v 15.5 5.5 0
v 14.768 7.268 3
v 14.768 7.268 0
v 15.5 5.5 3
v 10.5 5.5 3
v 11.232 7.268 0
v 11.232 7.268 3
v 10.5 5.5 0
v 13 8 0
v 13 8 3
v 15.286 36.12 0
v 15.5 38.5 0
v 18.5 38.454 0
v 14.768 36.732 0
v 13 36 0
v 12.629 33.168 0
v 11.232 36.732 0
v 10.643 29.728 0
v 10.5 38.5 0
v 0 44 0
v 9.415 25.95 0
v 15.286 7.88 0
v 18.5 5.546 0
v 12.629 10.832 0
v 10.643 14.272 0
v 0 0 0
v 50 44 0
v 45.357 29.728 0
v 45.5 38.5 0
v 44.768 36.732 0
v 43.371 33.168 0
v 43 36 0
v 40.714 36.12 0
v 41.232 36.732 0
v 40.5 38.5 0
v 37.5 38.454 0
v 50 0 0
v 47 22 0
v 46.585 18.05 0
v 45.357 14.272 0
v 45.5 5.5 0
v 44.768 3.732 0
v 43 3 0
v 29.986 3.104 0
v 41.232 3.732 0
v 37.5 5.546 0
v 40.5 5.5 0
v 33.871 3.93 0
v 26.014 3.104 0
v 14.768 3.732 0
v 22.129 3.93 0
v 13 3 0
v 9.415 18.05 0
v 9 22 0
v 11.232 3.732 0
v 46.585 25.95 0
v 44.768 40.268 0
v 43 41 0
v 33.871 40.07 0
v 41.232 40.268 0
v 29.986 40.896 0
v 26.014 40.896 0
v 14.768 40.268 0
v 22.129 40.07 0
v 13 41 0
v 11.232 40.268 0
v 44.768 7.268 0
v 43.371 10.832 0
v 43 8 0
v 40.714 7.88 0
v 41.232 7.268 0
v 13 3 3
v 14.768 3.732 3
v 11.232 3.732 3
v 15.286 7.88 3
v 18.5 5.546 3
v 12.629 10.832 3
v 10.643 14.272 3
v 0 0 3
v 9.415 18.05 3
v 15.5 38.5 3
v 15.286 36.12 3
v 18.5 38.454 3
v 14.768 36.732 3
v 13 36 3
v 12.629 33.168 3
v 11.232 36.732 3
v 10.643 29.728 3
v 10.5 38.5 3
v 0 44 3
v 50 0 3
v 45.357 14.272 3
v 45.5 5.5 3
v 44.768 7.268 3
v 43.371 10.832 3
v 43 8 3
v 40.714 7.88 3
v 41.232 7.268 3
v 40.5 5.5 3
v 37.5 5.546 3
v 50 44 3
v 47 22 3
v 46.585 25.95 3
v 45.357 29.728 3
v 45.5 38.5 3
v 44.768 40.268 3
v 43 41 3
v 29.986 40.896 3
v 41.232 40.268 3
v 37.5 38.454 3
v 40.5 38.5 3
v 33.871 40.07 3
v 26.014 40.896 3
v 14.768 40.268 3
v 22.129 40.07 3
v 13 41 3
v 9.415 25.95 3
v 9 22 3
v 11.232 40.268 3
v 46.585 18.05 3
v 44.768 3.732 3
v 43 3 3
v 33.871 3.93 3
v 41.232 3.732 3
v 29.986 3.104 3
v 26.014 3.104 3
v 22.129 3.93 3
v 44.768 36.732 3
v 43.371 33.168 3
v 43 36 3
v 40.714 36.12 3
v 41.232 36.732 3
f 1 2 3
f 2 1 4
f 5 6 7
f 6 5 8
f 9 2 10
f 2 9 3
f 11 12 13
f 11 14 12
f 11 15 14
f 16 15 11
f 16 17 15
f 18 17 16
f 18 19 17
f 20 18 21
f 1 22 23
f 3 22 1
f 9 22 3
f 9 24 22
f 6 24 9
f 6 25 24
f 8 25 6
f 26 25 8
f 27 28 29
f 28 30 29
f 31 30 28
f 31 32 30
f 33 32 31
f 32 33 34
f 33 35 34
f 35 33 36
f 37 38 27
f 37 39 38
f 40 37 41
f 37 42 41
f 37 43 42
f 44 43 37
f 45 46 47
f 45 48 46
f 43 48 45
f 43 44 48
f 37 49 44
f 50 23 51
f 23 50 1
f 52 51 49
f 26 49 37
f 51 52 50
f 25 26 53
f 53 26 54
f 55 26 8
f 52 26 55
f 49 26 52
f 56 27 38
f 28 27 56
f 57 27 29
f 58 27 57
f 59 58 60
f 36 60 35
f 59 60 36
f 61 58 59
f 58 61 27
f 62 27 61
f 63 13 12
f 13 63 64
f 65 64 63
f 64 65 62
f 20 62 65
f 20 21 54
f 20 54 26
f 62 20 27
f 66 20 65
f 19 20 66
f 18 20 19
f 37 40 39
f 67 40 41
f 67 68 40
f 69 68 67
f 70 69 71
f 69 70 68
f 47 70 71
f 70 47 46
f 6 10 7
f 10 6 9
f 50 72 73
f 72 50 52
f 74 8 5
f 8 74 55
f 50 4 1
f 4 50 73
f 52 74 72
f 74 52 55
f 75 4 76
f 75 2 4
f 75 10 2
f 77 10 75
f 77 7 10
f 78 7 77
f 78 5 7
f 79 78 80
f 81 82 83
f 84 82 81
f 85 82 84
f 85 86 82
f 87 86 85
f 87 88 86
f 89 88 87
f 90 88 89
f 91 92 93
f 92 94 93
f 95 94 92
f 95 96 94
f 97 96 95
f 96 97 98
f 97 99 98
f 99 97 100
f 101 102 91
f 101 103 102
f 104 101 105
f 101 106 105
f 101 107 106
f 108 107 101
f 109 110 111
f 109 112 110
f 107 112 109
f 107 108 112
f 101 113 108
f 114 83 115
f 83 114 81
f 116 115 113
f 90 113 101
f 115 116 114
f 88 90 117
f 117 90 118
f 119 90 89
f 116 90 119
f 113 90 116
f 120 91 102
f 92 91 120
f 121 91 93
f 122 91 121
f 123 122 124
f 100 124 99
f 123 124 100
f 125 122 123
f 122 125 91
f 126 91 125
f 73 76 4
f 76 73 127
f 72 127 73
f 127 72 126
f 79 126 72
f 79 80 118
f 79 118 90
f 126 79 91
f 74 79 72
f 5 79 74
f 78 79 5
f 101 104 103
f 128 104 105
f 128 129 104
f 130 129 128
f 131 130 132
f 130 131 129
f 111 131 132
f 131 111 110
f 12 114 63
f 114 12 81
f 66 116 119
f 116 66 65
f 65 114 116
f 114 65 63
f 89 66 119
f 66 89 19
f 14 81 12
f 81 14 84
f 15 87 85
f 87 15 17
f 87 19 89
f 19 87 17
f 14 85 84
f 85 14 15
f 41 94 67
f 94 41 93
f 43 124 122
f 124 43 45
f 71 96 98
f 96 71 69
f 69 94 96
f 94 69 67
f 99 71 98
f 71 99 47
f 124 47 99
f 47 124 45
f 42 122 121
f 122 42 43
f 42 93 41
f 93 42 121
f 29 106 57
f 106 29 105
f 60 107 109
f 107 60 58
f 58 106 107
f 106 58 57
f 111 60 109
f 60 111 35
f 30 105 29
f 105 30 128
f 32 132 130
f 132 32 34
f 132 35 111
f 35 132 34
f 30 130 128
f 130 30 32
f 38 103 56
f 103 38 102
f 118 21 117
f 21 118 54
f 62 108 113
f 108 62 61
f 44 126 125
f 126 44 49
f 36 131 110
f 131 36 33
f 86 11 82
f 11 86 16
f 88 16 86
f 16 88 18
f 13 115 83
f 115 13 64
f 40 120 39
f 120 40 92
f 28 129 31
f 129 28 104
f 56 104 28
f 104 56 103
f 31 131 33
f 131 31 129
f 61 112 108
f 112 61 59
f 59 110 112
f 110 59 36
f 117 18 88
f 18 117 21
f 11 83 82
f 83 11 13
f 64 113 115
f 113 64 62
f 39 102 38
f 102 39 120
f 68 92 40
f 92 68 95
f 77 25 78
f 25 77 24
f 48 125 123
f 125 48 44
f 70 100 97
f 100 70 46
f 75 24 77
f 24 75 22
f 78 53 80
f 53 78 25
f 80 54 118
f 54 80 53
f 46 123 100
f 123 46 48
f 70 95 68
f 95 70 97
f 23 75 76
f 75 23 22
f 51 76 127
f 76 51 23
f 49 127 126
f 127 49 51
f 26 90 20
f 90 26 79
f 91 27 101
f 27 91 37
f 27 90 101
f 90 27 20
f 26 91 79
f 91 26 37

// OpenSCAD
// I have no idea what I'm doing.

fan_height=3; // Height of plate
fan_width=44; // width of plate
fan_length=50; // length of plate
main_circ_d=38; // Diameter of fan hole
alt_circ_d=5; // Diameter of bolt hole

arm_width=20;
arm_depth=3;
arm_height=80;

module fan() {
    fan_offset=(fan_width-main_circ_d)/2; // Half the size of main circle
    alt_circ_dist=(main_circ_d-alt_circ_d); // Distance between alt circles
    function alt_fan_offset(x) = (x*(alt_circ_dist-3));
    
    difference() {
        // Fan plate
        cube(size=[fan_length,fan_width,fan_height], center=false);
        
        translate([(fan_width/2)+(fan_length-fan_width),(fan_width/2),0]) { 
            // Main Circle
            cylinder(h=fan_height, d=main_circ_d, center=false);
            translate([(-alt_circ_dist/2)+1.5,(-alt_circ_dist/2),0]) {
                // Generate four alt circles
                for (a=[0:1]) {
                    translate([alt_fan_offset(a),0,0]) {
                        cylinder(h=fan_height, d=alt_circ_d, center=false);
                    }
                    translate([alt_fan_offset(a),alt_circ_dist,0]) {
                        cylinder(h=fan_height, d=alt_circ_d, center=false);
                    }
                }
            }
        }
    }
}

module arm() {
    difference() {
        translate([0,(fan_width-arm_width)/2,0]) {
            cube(size=[arm_depth,arm_width,arm_height], center=false);
            //cube(size=[arm_depth+3,arm_width,fan_height+3], center=false);
        }
        chisel_arm();
        place_mnt_pts();
    }
}

module chisel_arm() {
    translate([0,0,25]) {
        rotate([60,0,0]) {
            cube([arm_depth,80,50]);
        }
    }
//    translate([0,44,25]) {
//        rotate([20,0,0]) {
//            cube([arm_depth,50,80]);
//        }
//    }
    translate([0,(fan_width-arm_width)/2,75]) {
        cube([arm_depth,arm_width,10]);
    }
}

module mnt_pts() {
    translate([0,0,-0.2]) {
        cylinder(h=arm_depth+0.4,d=4,center=false);
        translate([20,0,0]) {
            cylinder(h=arm_depth+0.4,d=4,center=false);
        }
    }
}

module place_mnt_pts() {
    translate([-0.1,28,66]) {
    rotate([-30,0,0]) {
    rotate([0,90,0]) {    
            mnt_pts();
        }
    }
}
}

module fan_mount() {
    union() {
        fan();
        //arm();
    }
}

probe_width=30;

module probe_mount() {
    module base() {
        union() {
            cube(size=[probe_width+5,probe_width,fan_height], center=false);
            cube(size=[arm_depth, probe_width, 15], center=false);
        }
    }
    module drill_holes() {
        difference() {
            base();
            translate([0,(probe_width-20)/2,10]) {
                rotate([0,90,0]) {
                    rotate([0,0,90]) {
                        mnt_pts();
                    }
                }
            }
        }
    }
    module place_main_hole() {
        diff=(probe_width-20)/2;
        difference() {
            drill_holes();
            translate([(10+diff)+5,(10+diff),-0.1]) {
                cylinder(h=fan_height+0.2,d=20,center=false);
            }
        }
    }
    place_main_hole();
}


//probe_mount();
fan_mount();
